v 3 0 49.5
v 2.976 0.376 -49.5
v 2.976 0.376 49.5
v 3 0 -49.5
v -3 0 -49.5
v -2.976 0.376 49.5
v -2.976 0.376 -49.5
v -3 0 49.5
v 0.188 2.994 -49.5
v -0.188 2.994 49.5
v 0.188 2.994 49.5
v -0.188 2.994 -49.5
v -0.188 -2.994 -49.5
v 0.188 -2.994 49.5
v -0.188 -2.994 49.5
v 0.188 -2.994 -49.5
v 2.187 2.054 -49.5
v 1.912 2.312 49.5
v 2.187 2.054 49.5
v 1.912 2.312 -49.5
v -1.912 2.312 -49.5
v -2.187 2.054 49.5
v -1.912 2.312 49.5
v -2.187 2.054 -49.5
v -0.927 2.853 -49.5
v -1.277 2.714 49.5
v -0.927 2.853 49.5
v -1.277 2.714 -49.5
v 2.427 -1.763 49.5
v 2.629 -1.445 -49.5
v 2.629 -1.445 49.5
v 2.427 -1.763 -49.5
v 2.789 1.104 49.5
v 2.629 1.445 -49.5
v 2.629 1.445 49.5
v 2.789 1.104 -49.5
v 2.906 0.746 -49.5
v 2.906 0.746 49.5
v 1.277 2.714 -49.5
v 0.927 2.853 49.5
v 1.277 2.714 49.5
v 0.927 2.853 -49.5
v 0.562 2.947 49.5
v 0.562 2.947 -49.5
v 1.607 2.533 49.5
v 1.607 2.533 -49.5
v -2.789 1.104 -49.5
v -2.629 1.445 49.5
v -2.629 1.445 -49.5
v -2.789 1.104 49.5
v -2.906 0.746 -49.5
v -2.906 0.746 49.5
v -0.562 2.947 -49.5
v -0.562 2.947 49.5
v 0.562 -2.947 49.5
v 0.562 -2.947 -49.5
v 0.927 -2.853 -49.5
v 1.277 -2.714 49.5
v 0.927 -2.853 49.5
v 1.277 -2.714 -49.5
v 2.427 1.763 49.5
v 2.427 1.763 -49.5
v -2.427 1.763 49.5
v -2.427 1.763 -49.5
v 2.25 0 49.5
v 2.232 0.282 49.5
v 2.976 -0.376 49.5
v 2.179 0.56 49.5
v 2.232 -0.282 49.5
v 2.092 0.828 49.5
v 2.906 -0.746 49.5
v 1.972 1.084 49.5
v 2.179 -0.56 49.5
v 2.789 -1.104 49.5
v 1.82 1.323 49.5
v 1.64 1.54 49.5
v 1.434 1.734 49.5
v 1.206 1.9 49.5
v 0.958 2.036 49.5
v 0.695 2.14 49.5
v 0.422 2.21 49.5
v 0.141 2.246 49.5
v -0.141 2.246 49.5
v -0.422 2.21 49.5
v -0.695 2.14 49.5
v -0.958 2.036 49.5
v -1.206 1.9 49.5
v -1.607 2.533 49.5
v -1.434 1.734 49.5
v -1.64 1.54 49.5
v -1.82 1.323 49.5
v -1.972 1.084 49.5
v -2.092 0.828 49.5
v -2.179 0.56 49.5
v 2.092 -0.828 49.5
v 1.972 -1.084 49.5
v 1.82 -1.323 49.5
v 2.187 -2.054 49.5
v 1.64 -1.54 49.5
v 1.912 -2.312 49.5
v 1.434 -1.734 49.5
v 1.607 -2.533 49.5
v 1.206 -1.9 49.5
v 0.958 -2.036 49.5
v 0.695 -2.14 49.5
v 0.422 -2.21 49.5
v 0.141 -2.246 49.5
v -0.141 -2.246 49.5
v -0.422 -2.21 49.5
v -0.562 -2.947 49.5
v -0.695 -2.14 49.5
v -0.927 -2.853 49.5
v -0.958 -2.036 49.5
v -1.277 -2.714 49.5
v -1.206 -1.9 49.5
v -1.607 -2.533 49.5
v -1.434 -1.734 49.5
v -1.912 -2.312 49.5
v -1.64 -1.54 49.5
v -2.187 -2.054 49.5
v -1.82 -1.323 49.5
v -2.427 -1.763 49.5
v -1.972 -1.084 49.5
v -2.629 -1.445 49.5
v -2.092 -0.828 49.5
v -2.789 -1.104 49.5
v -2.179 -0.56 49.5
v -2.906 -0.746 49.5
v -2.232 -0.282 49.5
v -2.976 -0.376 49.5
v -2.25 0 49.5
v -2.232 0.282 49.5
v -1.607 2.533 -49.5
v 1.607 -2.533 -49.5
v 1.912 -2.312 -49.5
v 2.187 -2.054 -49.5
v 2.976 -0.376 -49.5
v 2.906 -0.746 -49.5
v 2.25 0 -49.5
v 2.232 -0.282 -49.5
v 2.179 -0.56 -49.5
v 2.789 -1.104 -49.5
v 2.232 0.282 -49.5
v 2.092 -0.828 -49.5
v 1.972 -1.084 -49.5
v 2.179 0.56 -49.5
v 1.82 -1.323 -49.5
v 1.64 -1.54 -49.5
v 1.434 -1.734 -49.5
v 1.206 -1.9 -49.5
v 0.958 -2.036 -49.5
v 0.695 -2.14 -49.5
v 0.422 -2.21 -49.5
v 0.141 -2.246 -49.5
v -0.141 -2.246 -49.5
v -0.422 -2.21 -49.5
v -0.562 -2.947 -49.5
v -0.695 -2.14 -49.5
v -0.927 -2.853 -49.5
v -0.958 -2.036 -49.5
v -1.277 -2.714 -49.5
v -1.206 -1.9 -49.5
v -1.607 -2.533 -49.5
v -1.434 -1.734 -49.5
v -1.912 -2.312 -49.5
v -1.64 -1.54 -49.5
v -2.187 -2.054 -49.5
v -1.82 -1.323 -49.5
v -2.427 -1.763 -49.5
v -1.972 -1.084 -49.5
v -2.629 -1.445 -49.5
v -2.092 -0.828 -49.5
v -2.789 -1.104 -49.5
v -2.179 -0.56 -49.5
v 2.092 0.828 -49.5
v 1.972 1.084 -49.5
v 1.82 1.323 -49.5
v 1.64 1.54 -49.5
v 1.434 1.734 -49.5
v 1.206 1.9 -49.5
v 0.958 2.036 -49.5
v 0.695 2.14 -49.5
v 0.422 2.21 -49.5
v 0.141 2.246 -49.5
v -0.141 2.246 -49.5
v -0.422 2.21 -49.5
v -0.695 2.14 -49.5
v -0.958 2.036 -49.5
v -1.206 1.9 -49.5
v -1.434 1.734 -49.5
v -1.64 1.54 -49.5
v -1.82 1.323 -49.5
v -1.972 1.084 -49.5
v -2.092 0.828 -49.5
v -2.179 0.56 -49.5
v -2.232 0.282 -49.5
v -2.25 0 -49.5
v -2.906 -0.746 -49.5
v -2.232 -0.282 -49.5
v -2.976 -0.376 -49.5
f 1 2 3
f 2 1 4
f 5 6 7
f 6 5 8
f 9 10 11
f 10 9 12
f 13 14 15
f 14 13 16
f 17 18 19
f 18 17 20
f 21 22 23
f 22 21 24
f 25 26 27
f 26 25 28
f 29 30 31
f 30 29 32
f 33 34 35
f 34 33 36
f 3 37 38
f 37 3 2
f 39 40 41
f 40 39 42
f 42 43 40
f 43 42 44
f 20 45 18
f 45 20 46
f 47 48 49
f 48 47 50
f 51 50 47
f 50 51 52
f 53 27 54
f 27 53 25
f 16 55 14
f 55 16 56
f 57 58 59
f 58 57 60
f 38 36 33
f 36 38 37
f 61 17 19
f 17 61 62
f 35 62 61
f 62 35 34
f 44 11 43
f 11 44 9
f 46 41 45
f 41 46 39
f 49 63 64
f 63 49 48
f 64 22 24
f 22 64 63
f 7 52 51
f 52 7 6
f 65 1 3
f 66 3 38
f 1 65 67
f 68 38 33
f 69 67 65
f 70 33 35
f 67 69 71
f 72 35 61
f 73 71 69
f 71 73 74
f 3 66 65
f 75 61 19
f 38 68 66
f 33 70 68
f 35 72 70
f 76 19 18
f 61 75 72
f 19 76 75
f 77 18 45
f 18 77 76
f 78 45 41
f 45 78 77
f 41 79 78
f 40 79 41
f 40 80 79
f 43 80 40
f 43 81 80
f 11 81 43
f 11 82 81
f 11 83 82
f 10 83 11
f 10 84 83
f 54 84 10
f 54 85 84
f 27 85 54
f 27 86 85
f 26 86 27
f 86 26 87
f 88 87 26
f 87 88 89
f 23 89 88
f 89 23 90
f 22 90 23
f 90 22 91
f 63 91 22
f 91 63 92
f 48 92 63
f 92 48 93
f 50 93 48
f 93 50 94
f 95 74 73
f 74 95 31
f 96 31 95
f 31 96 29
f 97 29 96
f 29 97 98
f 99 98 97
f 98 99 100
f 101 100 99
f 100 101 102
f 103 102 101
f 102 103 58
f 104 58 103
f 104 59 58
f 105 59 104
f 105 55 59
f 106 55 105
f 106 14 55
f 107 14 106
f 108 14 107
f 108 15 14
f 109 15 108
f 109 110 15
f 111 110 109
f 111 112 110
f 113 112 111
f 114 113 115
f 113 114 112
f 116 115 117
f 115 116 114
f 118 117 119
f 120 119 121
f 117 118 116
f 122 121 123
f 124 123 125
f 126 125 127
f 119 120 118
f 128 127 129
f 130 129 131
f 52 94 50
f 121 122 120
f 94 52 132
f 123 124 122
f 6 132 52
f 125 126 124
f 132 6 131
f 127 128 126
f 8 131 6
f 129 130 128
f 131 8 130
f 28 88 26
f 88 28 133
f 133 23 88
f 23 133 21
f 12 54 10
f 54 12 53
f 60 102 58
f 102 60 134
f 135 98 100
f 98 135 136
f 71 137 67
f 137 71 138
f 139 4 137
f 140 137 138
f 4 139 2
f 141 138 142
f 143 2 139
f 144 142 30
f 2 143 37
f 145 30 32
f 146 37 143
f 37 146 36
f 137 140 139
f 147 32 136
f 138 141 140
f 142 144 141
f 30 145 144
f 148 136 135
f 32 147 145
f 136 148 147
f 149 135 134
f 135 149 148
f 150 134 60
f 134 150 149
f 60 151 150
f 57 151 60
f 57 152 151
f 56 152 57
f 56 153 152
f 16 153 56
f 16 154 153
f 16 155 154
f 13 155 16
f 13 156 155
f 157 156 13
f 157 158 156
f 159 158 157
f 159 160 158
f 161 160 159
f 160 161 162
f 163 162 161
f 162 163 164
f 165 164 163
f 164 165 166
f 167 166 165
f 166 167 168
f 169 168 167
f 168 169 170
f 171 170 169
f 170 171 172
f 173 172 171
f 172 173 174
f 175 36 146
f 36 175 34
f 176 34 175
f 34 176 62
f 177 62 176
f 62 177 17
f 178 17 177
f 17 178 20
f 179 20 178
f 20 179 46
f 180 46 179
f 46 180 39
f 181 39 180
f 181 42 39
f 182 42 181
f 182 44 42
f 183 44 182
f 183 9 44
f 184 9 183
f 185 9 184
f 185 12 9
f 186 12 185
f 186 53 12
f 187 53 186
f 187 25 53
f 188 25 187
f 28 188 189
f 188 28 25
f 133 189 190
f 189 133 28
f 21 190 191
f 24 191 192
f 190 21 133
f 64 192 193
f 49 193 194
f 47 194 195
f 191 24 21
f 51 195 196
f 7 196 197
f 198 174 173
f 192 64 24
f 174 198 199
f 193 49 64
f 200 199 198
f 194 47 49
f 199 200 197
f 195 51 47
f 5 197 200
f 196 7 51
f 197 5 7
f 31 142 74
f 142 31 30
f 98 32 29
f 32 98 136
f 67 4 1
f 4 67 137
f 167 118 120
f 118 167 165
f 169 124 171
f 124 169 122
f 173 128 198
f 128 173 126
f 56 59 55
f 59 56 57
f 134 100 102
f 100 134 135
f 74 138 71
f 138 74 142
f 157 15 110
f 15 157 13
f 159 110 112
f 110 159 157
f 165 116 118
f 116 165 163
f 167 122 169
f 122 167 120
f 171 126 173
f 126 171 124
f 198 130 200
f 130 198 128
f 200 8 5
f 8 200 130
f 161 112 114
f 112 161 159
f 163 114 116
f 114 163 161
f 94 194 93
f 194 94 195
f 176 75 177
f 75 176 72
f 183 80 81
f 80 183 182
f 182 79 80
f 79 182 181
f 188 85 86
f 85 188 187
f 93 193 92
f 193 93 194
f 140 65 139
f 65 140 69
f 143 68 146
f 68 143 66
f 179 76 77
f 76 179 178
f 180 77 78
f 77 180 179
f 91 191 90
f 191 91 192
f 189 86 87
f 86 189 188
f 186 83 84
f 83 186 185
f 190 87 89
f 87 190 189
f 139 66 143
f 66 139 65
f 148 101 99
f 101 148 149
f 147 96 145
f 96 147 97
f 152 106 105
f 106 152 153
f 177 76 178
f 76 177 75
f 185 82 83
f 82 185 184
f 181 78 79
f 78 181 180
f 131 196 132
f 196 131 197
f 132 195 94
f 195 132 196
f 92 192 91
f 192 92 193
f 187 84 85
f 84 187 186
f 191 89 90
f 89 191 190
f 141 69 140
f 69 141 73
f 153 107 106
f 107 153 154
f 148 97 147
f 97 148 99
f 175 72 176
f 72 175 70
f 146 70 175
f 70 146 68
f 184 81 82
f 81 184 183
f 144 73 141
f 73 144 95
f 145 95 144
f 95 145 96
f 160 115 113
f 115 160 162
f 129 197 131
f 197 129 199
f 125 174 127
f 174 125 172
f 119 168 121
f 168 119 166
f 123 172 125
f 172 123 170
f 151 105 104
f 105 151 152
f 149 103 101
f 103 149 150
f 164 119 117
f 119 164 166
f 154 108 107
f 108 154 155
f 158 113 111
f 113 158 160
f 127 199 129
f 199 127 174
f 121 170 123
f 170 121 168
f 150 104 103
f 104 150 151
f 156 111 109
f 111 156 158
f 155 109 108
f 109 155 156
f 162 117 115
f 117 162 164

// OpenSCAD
$fn = 50;


difference() {
	union() {
		translate(v = [0, 0, -49.5000000000]) {
			cylinder(h = 99, r = 3.0000000000);
		}
	}
	union() {
		translate(v = [0, 0, -100.0000000000]) {
			cylinder(h = 200, r = 2.2500000000);
		}
	}
}
